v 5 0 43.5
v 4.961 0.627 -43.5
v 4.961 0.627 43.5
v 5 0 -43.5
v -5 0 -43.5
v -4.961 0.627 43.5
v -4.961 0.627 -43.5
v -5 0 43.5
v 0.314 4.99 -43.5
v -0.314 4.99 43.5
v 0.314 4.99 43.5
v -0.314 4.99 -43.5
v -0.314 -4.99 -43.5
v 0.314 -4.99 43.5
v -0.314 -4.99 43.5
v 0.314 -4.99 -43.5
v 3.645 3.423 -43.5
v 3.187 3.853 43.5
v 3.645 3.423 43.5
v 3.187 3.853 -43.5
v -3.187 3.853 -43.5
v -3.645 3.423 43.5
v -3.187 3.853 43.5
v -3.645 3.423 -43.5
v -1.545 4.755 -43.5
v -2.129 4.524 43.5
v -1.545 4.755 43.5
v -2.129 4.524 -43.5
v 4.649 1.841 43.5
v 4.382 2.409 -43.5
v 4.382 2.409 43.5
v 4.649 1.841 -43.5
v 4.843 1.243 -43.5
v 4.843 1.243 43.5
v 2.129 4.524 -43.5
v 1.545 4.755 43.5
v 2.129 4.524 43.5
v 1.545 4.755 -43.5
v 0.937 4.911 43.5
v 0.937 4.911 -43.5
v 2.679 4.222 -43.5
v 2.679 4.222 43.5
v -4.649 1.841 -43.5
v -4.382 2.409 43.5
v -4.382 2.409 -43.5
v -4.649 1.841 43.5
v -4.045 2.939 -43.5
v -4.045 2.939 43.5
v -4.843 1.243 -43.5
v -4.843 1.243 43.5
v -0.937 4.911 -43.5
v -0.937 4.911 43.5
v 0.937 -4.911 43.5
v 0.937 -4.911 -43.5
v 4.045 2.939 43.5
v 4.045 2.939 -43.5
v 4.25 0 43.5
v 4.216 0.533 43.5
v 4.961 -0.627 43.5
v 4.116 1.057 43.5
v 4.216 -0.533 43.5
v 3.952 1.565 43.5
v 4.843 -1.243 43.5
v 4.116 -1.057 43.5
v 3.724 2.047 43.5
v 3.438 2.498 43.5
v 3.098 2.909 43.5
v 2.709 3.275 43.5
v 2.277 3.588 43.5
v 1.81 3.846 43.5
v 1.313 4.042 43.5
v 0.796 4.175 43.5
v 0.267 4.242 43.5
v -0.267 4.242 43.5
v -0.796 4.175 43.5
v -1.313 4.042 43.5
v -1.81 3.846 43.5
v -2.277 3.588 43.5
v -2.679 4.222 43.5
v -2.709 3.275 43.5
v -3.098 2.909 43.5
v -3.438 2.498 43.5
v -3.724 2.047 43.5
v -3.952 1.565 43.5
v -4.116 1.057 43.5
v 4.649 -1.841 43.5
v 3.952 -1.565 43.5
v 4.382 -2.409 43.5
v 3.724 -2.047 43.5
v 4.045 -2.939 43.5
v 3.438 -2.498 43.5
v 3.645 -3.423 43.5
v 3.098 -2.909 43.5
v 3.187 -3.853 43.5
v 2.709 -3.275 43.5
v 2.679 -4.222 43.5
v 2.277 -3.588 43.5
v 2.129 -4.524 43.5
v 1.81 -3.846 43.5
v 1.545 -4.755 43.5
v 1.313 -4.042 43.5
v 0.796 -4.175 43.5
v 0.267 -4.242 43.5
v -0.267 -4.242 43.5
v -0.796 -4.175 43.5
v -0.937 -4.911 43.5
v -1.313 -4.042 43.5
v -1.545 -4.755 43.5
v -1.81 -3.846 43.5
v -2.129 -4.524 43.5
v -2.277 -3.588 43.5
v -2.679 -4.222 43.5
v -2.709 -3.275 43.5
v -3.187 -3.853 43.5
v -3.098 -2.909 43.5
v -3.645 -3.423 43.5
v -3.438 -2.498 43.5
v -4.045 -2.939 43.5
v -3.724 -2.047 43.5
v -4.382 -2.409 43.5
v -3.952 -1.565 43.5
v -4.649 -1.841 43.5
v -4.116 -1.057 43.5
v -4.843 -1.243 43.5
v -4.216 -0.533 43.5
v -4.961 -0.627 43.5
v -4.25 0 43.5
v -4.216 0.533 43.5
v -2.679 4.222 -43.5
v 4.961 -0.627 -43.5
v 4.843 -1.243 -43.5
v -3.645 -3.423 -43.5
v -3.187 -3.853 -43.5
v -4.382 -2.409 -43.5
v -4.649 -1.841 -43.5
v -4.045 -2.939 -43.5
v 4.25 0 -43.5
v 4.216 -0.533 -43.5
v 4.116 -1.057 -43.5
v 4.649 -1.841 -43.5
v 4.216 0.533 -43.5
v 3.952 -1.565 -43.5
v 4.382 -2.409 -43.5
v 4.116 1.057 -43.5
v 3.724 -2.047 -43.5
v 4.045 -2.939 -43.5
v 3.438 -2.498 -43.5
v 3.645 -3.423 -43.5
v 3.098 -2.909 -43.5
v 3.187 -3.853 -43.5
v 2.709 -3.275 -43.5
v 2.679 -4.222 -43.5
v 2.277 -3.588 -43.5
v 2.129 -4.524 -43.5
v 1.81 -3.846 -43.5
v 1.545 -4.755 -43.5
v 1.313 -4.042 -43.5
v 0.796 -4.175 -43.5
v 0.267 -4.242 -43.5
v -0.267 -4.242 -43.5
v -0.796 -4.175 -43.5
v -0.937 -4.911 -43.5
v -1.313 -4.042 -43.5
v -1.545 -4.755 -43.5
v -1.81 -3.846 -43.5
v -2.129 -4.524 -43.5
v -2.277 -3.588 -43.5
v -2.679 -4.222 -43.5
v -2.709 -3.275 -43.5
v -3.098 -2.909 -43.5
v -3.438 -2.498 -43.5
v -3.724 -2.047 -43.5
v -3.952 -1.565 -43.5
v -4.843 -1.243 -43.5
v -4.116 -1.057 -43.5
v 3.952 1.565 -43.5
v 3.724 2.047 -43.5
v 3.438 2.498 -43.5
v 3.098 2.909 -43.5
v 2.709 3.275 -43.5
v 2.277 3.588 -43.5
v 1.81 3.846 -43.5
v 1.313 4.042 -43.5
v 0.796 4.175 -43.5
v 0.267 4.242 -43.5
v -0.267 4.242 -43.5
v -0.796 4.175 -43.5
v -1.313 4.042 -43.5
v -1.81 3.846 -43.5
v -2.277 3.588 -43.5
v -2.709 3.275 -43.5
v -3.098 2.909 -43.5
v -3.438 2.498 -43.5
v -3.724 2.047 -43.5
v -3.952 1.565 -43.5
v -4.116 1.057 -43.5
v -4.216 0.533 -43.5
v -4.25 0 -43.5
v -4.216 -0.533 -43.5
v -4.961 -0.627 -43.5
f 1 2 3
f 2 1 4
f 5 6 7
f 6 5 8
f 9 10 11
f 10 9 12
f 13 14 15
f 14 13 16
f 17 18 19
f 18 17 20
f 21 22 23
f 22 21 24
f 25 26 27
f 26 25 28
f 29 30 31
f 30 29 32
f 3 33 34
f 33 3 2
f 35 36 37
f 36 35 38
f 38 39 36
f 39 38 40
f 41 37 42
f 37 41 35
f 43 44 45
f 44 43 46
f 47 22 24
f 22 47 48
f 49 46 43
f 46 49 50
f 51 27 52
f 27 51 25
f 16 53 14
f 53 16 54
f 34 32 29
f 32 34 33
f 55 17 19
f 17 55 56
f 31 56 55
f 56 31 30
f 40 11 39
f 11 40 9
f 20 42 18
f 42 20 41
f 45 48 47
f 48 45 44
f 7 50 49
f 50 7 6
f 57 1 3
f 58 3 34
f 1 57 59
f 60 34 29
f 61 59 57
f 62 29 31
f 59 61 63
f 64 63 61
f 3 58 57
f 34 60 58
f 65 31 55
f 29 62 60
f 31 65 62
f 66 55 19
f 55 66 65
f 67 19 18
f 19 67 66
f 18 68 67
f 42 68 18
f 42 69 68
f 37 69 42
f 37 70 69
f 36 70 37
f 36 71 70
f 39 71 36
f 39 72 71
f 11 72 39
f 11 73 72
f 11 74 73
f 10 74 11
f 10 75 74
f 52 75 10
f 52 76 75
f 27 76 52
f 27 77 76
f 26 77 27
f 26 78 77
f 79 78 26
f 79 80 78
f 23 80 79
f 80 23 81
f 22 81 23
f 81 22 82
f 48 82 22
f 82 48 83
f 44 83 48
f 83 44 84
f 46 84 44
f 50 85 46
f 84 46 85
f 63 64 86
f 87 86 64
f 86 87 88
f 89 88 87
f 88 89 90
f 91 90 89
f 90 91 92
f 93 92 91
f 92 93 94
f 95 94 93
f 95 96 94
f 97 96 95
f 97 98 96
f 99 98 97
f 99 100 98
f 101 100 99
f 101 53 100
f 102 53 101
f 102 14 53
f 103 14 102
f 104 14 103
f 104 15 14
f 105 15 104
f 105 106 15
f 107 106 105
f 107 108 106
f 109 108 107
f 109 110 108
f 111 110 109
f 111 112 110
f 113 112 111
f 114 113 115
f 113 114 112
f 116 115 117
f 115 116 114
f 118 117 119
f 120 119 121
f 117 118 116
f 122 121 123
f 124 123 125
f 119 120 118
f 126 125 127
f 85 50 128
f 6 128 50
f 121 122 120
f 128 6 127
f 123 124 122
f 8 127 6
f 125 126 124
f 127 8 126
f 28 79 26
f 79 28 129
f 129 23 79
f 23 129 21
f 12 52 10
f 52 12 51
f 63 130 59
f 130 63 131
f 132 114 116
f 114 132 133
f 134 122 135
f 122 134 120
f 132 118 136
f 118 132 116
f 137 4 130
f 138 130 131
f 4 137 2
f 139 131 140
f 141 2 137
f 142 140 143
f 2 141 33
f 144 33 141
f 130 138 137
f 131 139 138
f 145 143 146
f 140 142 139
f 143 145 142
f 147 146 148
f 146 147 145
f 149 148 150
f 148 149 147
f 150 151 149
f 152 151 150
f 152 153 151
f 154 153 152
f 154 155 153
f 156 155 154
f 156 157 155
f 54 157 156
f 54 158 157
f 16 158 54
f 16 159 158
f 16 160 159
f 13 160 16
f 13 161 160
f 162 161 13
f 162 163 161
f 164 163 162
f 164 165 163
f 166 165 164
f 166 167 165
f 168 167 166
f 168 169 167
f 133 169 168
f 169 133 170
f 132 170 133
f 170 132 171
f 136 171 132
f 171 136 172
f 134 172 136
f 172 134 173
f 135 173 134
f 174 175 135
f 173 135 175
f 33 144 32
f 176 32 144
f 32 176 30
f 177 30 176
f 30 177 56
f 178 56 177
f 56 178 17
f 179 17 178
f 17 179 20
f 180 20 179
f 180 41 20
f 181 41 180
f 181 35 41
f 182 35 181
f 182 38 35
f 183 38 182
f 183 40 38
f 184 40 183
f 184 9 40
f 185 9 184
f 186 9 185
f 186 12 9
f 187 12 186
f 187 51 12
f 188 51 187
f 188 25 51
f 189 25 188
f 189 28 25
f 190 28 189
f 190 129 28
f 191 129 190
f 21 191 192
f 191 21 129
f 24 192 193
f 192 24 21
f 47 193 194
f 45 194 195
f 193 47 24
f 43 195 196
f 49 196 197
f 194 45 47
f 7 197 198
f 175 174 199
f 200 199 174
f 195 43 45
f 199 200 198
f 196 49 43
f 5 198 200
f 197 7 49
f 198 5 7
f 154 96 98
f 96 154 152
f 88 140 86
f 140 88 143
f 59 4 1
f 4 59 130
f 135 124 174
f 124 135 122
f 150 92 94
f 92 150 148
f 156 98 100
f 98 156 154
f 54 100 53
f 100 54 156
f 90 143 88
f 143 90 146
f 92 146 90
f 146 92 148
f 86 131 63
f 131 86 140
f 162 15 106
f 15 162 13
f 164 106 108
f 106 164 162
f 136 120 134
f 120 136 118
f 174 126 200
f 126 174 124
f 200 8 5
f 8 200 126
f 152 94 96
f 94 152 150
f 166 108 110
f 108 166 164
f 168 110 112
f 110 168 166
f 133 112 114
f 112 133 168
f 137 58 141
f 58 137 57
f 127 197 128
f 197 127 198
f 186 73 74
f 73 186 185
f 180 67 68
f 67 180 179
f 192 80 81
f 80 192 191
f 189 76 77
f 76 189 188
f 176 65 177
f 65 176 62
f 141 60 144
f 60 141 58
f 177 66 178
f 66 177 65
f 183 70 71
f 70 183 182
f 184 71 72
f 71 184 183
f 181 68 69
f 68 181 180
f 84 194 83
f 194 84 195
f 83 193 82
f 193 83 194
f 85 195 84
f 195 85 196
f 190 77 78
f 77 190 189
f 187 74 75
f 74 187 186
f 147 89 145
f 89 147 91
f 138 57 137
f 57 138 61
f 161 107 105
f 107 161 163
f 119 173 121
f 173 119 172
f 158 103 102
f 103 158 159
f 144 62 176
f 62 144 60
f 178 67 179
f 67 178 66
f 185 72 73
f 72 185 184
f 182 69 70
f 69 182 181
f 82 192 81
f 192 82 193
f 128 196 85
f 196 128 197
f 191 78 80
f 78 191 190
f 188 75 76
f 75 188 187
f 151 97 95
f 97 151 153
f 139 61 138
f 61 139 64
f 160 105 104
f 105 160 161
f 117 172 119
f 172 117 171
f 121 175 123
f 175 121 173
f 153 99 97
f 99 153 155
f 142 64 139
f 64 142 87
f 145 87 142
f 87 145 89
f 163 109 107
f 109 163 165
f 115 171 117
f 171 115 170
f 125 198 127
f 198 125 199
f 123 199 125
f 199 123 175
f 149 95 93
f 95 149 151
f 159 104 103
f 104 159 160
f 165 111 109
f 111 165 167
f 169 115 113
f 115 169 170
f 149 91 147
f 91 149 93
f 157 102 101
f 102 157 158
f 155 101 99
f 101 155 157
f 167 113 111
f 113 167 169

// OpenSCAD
$fn = 50;


difference() {
	union() {
		translate(v = [0, 0, -43.5000000000]) {
			cylinder(h = 87, r = 5.0000000000);
		}
	}
	union() {
		translate(v = [0, 0, -100.0000000000]) {
			cylinder(h = 200, r = 4.2500000000);
		}
	}
}
